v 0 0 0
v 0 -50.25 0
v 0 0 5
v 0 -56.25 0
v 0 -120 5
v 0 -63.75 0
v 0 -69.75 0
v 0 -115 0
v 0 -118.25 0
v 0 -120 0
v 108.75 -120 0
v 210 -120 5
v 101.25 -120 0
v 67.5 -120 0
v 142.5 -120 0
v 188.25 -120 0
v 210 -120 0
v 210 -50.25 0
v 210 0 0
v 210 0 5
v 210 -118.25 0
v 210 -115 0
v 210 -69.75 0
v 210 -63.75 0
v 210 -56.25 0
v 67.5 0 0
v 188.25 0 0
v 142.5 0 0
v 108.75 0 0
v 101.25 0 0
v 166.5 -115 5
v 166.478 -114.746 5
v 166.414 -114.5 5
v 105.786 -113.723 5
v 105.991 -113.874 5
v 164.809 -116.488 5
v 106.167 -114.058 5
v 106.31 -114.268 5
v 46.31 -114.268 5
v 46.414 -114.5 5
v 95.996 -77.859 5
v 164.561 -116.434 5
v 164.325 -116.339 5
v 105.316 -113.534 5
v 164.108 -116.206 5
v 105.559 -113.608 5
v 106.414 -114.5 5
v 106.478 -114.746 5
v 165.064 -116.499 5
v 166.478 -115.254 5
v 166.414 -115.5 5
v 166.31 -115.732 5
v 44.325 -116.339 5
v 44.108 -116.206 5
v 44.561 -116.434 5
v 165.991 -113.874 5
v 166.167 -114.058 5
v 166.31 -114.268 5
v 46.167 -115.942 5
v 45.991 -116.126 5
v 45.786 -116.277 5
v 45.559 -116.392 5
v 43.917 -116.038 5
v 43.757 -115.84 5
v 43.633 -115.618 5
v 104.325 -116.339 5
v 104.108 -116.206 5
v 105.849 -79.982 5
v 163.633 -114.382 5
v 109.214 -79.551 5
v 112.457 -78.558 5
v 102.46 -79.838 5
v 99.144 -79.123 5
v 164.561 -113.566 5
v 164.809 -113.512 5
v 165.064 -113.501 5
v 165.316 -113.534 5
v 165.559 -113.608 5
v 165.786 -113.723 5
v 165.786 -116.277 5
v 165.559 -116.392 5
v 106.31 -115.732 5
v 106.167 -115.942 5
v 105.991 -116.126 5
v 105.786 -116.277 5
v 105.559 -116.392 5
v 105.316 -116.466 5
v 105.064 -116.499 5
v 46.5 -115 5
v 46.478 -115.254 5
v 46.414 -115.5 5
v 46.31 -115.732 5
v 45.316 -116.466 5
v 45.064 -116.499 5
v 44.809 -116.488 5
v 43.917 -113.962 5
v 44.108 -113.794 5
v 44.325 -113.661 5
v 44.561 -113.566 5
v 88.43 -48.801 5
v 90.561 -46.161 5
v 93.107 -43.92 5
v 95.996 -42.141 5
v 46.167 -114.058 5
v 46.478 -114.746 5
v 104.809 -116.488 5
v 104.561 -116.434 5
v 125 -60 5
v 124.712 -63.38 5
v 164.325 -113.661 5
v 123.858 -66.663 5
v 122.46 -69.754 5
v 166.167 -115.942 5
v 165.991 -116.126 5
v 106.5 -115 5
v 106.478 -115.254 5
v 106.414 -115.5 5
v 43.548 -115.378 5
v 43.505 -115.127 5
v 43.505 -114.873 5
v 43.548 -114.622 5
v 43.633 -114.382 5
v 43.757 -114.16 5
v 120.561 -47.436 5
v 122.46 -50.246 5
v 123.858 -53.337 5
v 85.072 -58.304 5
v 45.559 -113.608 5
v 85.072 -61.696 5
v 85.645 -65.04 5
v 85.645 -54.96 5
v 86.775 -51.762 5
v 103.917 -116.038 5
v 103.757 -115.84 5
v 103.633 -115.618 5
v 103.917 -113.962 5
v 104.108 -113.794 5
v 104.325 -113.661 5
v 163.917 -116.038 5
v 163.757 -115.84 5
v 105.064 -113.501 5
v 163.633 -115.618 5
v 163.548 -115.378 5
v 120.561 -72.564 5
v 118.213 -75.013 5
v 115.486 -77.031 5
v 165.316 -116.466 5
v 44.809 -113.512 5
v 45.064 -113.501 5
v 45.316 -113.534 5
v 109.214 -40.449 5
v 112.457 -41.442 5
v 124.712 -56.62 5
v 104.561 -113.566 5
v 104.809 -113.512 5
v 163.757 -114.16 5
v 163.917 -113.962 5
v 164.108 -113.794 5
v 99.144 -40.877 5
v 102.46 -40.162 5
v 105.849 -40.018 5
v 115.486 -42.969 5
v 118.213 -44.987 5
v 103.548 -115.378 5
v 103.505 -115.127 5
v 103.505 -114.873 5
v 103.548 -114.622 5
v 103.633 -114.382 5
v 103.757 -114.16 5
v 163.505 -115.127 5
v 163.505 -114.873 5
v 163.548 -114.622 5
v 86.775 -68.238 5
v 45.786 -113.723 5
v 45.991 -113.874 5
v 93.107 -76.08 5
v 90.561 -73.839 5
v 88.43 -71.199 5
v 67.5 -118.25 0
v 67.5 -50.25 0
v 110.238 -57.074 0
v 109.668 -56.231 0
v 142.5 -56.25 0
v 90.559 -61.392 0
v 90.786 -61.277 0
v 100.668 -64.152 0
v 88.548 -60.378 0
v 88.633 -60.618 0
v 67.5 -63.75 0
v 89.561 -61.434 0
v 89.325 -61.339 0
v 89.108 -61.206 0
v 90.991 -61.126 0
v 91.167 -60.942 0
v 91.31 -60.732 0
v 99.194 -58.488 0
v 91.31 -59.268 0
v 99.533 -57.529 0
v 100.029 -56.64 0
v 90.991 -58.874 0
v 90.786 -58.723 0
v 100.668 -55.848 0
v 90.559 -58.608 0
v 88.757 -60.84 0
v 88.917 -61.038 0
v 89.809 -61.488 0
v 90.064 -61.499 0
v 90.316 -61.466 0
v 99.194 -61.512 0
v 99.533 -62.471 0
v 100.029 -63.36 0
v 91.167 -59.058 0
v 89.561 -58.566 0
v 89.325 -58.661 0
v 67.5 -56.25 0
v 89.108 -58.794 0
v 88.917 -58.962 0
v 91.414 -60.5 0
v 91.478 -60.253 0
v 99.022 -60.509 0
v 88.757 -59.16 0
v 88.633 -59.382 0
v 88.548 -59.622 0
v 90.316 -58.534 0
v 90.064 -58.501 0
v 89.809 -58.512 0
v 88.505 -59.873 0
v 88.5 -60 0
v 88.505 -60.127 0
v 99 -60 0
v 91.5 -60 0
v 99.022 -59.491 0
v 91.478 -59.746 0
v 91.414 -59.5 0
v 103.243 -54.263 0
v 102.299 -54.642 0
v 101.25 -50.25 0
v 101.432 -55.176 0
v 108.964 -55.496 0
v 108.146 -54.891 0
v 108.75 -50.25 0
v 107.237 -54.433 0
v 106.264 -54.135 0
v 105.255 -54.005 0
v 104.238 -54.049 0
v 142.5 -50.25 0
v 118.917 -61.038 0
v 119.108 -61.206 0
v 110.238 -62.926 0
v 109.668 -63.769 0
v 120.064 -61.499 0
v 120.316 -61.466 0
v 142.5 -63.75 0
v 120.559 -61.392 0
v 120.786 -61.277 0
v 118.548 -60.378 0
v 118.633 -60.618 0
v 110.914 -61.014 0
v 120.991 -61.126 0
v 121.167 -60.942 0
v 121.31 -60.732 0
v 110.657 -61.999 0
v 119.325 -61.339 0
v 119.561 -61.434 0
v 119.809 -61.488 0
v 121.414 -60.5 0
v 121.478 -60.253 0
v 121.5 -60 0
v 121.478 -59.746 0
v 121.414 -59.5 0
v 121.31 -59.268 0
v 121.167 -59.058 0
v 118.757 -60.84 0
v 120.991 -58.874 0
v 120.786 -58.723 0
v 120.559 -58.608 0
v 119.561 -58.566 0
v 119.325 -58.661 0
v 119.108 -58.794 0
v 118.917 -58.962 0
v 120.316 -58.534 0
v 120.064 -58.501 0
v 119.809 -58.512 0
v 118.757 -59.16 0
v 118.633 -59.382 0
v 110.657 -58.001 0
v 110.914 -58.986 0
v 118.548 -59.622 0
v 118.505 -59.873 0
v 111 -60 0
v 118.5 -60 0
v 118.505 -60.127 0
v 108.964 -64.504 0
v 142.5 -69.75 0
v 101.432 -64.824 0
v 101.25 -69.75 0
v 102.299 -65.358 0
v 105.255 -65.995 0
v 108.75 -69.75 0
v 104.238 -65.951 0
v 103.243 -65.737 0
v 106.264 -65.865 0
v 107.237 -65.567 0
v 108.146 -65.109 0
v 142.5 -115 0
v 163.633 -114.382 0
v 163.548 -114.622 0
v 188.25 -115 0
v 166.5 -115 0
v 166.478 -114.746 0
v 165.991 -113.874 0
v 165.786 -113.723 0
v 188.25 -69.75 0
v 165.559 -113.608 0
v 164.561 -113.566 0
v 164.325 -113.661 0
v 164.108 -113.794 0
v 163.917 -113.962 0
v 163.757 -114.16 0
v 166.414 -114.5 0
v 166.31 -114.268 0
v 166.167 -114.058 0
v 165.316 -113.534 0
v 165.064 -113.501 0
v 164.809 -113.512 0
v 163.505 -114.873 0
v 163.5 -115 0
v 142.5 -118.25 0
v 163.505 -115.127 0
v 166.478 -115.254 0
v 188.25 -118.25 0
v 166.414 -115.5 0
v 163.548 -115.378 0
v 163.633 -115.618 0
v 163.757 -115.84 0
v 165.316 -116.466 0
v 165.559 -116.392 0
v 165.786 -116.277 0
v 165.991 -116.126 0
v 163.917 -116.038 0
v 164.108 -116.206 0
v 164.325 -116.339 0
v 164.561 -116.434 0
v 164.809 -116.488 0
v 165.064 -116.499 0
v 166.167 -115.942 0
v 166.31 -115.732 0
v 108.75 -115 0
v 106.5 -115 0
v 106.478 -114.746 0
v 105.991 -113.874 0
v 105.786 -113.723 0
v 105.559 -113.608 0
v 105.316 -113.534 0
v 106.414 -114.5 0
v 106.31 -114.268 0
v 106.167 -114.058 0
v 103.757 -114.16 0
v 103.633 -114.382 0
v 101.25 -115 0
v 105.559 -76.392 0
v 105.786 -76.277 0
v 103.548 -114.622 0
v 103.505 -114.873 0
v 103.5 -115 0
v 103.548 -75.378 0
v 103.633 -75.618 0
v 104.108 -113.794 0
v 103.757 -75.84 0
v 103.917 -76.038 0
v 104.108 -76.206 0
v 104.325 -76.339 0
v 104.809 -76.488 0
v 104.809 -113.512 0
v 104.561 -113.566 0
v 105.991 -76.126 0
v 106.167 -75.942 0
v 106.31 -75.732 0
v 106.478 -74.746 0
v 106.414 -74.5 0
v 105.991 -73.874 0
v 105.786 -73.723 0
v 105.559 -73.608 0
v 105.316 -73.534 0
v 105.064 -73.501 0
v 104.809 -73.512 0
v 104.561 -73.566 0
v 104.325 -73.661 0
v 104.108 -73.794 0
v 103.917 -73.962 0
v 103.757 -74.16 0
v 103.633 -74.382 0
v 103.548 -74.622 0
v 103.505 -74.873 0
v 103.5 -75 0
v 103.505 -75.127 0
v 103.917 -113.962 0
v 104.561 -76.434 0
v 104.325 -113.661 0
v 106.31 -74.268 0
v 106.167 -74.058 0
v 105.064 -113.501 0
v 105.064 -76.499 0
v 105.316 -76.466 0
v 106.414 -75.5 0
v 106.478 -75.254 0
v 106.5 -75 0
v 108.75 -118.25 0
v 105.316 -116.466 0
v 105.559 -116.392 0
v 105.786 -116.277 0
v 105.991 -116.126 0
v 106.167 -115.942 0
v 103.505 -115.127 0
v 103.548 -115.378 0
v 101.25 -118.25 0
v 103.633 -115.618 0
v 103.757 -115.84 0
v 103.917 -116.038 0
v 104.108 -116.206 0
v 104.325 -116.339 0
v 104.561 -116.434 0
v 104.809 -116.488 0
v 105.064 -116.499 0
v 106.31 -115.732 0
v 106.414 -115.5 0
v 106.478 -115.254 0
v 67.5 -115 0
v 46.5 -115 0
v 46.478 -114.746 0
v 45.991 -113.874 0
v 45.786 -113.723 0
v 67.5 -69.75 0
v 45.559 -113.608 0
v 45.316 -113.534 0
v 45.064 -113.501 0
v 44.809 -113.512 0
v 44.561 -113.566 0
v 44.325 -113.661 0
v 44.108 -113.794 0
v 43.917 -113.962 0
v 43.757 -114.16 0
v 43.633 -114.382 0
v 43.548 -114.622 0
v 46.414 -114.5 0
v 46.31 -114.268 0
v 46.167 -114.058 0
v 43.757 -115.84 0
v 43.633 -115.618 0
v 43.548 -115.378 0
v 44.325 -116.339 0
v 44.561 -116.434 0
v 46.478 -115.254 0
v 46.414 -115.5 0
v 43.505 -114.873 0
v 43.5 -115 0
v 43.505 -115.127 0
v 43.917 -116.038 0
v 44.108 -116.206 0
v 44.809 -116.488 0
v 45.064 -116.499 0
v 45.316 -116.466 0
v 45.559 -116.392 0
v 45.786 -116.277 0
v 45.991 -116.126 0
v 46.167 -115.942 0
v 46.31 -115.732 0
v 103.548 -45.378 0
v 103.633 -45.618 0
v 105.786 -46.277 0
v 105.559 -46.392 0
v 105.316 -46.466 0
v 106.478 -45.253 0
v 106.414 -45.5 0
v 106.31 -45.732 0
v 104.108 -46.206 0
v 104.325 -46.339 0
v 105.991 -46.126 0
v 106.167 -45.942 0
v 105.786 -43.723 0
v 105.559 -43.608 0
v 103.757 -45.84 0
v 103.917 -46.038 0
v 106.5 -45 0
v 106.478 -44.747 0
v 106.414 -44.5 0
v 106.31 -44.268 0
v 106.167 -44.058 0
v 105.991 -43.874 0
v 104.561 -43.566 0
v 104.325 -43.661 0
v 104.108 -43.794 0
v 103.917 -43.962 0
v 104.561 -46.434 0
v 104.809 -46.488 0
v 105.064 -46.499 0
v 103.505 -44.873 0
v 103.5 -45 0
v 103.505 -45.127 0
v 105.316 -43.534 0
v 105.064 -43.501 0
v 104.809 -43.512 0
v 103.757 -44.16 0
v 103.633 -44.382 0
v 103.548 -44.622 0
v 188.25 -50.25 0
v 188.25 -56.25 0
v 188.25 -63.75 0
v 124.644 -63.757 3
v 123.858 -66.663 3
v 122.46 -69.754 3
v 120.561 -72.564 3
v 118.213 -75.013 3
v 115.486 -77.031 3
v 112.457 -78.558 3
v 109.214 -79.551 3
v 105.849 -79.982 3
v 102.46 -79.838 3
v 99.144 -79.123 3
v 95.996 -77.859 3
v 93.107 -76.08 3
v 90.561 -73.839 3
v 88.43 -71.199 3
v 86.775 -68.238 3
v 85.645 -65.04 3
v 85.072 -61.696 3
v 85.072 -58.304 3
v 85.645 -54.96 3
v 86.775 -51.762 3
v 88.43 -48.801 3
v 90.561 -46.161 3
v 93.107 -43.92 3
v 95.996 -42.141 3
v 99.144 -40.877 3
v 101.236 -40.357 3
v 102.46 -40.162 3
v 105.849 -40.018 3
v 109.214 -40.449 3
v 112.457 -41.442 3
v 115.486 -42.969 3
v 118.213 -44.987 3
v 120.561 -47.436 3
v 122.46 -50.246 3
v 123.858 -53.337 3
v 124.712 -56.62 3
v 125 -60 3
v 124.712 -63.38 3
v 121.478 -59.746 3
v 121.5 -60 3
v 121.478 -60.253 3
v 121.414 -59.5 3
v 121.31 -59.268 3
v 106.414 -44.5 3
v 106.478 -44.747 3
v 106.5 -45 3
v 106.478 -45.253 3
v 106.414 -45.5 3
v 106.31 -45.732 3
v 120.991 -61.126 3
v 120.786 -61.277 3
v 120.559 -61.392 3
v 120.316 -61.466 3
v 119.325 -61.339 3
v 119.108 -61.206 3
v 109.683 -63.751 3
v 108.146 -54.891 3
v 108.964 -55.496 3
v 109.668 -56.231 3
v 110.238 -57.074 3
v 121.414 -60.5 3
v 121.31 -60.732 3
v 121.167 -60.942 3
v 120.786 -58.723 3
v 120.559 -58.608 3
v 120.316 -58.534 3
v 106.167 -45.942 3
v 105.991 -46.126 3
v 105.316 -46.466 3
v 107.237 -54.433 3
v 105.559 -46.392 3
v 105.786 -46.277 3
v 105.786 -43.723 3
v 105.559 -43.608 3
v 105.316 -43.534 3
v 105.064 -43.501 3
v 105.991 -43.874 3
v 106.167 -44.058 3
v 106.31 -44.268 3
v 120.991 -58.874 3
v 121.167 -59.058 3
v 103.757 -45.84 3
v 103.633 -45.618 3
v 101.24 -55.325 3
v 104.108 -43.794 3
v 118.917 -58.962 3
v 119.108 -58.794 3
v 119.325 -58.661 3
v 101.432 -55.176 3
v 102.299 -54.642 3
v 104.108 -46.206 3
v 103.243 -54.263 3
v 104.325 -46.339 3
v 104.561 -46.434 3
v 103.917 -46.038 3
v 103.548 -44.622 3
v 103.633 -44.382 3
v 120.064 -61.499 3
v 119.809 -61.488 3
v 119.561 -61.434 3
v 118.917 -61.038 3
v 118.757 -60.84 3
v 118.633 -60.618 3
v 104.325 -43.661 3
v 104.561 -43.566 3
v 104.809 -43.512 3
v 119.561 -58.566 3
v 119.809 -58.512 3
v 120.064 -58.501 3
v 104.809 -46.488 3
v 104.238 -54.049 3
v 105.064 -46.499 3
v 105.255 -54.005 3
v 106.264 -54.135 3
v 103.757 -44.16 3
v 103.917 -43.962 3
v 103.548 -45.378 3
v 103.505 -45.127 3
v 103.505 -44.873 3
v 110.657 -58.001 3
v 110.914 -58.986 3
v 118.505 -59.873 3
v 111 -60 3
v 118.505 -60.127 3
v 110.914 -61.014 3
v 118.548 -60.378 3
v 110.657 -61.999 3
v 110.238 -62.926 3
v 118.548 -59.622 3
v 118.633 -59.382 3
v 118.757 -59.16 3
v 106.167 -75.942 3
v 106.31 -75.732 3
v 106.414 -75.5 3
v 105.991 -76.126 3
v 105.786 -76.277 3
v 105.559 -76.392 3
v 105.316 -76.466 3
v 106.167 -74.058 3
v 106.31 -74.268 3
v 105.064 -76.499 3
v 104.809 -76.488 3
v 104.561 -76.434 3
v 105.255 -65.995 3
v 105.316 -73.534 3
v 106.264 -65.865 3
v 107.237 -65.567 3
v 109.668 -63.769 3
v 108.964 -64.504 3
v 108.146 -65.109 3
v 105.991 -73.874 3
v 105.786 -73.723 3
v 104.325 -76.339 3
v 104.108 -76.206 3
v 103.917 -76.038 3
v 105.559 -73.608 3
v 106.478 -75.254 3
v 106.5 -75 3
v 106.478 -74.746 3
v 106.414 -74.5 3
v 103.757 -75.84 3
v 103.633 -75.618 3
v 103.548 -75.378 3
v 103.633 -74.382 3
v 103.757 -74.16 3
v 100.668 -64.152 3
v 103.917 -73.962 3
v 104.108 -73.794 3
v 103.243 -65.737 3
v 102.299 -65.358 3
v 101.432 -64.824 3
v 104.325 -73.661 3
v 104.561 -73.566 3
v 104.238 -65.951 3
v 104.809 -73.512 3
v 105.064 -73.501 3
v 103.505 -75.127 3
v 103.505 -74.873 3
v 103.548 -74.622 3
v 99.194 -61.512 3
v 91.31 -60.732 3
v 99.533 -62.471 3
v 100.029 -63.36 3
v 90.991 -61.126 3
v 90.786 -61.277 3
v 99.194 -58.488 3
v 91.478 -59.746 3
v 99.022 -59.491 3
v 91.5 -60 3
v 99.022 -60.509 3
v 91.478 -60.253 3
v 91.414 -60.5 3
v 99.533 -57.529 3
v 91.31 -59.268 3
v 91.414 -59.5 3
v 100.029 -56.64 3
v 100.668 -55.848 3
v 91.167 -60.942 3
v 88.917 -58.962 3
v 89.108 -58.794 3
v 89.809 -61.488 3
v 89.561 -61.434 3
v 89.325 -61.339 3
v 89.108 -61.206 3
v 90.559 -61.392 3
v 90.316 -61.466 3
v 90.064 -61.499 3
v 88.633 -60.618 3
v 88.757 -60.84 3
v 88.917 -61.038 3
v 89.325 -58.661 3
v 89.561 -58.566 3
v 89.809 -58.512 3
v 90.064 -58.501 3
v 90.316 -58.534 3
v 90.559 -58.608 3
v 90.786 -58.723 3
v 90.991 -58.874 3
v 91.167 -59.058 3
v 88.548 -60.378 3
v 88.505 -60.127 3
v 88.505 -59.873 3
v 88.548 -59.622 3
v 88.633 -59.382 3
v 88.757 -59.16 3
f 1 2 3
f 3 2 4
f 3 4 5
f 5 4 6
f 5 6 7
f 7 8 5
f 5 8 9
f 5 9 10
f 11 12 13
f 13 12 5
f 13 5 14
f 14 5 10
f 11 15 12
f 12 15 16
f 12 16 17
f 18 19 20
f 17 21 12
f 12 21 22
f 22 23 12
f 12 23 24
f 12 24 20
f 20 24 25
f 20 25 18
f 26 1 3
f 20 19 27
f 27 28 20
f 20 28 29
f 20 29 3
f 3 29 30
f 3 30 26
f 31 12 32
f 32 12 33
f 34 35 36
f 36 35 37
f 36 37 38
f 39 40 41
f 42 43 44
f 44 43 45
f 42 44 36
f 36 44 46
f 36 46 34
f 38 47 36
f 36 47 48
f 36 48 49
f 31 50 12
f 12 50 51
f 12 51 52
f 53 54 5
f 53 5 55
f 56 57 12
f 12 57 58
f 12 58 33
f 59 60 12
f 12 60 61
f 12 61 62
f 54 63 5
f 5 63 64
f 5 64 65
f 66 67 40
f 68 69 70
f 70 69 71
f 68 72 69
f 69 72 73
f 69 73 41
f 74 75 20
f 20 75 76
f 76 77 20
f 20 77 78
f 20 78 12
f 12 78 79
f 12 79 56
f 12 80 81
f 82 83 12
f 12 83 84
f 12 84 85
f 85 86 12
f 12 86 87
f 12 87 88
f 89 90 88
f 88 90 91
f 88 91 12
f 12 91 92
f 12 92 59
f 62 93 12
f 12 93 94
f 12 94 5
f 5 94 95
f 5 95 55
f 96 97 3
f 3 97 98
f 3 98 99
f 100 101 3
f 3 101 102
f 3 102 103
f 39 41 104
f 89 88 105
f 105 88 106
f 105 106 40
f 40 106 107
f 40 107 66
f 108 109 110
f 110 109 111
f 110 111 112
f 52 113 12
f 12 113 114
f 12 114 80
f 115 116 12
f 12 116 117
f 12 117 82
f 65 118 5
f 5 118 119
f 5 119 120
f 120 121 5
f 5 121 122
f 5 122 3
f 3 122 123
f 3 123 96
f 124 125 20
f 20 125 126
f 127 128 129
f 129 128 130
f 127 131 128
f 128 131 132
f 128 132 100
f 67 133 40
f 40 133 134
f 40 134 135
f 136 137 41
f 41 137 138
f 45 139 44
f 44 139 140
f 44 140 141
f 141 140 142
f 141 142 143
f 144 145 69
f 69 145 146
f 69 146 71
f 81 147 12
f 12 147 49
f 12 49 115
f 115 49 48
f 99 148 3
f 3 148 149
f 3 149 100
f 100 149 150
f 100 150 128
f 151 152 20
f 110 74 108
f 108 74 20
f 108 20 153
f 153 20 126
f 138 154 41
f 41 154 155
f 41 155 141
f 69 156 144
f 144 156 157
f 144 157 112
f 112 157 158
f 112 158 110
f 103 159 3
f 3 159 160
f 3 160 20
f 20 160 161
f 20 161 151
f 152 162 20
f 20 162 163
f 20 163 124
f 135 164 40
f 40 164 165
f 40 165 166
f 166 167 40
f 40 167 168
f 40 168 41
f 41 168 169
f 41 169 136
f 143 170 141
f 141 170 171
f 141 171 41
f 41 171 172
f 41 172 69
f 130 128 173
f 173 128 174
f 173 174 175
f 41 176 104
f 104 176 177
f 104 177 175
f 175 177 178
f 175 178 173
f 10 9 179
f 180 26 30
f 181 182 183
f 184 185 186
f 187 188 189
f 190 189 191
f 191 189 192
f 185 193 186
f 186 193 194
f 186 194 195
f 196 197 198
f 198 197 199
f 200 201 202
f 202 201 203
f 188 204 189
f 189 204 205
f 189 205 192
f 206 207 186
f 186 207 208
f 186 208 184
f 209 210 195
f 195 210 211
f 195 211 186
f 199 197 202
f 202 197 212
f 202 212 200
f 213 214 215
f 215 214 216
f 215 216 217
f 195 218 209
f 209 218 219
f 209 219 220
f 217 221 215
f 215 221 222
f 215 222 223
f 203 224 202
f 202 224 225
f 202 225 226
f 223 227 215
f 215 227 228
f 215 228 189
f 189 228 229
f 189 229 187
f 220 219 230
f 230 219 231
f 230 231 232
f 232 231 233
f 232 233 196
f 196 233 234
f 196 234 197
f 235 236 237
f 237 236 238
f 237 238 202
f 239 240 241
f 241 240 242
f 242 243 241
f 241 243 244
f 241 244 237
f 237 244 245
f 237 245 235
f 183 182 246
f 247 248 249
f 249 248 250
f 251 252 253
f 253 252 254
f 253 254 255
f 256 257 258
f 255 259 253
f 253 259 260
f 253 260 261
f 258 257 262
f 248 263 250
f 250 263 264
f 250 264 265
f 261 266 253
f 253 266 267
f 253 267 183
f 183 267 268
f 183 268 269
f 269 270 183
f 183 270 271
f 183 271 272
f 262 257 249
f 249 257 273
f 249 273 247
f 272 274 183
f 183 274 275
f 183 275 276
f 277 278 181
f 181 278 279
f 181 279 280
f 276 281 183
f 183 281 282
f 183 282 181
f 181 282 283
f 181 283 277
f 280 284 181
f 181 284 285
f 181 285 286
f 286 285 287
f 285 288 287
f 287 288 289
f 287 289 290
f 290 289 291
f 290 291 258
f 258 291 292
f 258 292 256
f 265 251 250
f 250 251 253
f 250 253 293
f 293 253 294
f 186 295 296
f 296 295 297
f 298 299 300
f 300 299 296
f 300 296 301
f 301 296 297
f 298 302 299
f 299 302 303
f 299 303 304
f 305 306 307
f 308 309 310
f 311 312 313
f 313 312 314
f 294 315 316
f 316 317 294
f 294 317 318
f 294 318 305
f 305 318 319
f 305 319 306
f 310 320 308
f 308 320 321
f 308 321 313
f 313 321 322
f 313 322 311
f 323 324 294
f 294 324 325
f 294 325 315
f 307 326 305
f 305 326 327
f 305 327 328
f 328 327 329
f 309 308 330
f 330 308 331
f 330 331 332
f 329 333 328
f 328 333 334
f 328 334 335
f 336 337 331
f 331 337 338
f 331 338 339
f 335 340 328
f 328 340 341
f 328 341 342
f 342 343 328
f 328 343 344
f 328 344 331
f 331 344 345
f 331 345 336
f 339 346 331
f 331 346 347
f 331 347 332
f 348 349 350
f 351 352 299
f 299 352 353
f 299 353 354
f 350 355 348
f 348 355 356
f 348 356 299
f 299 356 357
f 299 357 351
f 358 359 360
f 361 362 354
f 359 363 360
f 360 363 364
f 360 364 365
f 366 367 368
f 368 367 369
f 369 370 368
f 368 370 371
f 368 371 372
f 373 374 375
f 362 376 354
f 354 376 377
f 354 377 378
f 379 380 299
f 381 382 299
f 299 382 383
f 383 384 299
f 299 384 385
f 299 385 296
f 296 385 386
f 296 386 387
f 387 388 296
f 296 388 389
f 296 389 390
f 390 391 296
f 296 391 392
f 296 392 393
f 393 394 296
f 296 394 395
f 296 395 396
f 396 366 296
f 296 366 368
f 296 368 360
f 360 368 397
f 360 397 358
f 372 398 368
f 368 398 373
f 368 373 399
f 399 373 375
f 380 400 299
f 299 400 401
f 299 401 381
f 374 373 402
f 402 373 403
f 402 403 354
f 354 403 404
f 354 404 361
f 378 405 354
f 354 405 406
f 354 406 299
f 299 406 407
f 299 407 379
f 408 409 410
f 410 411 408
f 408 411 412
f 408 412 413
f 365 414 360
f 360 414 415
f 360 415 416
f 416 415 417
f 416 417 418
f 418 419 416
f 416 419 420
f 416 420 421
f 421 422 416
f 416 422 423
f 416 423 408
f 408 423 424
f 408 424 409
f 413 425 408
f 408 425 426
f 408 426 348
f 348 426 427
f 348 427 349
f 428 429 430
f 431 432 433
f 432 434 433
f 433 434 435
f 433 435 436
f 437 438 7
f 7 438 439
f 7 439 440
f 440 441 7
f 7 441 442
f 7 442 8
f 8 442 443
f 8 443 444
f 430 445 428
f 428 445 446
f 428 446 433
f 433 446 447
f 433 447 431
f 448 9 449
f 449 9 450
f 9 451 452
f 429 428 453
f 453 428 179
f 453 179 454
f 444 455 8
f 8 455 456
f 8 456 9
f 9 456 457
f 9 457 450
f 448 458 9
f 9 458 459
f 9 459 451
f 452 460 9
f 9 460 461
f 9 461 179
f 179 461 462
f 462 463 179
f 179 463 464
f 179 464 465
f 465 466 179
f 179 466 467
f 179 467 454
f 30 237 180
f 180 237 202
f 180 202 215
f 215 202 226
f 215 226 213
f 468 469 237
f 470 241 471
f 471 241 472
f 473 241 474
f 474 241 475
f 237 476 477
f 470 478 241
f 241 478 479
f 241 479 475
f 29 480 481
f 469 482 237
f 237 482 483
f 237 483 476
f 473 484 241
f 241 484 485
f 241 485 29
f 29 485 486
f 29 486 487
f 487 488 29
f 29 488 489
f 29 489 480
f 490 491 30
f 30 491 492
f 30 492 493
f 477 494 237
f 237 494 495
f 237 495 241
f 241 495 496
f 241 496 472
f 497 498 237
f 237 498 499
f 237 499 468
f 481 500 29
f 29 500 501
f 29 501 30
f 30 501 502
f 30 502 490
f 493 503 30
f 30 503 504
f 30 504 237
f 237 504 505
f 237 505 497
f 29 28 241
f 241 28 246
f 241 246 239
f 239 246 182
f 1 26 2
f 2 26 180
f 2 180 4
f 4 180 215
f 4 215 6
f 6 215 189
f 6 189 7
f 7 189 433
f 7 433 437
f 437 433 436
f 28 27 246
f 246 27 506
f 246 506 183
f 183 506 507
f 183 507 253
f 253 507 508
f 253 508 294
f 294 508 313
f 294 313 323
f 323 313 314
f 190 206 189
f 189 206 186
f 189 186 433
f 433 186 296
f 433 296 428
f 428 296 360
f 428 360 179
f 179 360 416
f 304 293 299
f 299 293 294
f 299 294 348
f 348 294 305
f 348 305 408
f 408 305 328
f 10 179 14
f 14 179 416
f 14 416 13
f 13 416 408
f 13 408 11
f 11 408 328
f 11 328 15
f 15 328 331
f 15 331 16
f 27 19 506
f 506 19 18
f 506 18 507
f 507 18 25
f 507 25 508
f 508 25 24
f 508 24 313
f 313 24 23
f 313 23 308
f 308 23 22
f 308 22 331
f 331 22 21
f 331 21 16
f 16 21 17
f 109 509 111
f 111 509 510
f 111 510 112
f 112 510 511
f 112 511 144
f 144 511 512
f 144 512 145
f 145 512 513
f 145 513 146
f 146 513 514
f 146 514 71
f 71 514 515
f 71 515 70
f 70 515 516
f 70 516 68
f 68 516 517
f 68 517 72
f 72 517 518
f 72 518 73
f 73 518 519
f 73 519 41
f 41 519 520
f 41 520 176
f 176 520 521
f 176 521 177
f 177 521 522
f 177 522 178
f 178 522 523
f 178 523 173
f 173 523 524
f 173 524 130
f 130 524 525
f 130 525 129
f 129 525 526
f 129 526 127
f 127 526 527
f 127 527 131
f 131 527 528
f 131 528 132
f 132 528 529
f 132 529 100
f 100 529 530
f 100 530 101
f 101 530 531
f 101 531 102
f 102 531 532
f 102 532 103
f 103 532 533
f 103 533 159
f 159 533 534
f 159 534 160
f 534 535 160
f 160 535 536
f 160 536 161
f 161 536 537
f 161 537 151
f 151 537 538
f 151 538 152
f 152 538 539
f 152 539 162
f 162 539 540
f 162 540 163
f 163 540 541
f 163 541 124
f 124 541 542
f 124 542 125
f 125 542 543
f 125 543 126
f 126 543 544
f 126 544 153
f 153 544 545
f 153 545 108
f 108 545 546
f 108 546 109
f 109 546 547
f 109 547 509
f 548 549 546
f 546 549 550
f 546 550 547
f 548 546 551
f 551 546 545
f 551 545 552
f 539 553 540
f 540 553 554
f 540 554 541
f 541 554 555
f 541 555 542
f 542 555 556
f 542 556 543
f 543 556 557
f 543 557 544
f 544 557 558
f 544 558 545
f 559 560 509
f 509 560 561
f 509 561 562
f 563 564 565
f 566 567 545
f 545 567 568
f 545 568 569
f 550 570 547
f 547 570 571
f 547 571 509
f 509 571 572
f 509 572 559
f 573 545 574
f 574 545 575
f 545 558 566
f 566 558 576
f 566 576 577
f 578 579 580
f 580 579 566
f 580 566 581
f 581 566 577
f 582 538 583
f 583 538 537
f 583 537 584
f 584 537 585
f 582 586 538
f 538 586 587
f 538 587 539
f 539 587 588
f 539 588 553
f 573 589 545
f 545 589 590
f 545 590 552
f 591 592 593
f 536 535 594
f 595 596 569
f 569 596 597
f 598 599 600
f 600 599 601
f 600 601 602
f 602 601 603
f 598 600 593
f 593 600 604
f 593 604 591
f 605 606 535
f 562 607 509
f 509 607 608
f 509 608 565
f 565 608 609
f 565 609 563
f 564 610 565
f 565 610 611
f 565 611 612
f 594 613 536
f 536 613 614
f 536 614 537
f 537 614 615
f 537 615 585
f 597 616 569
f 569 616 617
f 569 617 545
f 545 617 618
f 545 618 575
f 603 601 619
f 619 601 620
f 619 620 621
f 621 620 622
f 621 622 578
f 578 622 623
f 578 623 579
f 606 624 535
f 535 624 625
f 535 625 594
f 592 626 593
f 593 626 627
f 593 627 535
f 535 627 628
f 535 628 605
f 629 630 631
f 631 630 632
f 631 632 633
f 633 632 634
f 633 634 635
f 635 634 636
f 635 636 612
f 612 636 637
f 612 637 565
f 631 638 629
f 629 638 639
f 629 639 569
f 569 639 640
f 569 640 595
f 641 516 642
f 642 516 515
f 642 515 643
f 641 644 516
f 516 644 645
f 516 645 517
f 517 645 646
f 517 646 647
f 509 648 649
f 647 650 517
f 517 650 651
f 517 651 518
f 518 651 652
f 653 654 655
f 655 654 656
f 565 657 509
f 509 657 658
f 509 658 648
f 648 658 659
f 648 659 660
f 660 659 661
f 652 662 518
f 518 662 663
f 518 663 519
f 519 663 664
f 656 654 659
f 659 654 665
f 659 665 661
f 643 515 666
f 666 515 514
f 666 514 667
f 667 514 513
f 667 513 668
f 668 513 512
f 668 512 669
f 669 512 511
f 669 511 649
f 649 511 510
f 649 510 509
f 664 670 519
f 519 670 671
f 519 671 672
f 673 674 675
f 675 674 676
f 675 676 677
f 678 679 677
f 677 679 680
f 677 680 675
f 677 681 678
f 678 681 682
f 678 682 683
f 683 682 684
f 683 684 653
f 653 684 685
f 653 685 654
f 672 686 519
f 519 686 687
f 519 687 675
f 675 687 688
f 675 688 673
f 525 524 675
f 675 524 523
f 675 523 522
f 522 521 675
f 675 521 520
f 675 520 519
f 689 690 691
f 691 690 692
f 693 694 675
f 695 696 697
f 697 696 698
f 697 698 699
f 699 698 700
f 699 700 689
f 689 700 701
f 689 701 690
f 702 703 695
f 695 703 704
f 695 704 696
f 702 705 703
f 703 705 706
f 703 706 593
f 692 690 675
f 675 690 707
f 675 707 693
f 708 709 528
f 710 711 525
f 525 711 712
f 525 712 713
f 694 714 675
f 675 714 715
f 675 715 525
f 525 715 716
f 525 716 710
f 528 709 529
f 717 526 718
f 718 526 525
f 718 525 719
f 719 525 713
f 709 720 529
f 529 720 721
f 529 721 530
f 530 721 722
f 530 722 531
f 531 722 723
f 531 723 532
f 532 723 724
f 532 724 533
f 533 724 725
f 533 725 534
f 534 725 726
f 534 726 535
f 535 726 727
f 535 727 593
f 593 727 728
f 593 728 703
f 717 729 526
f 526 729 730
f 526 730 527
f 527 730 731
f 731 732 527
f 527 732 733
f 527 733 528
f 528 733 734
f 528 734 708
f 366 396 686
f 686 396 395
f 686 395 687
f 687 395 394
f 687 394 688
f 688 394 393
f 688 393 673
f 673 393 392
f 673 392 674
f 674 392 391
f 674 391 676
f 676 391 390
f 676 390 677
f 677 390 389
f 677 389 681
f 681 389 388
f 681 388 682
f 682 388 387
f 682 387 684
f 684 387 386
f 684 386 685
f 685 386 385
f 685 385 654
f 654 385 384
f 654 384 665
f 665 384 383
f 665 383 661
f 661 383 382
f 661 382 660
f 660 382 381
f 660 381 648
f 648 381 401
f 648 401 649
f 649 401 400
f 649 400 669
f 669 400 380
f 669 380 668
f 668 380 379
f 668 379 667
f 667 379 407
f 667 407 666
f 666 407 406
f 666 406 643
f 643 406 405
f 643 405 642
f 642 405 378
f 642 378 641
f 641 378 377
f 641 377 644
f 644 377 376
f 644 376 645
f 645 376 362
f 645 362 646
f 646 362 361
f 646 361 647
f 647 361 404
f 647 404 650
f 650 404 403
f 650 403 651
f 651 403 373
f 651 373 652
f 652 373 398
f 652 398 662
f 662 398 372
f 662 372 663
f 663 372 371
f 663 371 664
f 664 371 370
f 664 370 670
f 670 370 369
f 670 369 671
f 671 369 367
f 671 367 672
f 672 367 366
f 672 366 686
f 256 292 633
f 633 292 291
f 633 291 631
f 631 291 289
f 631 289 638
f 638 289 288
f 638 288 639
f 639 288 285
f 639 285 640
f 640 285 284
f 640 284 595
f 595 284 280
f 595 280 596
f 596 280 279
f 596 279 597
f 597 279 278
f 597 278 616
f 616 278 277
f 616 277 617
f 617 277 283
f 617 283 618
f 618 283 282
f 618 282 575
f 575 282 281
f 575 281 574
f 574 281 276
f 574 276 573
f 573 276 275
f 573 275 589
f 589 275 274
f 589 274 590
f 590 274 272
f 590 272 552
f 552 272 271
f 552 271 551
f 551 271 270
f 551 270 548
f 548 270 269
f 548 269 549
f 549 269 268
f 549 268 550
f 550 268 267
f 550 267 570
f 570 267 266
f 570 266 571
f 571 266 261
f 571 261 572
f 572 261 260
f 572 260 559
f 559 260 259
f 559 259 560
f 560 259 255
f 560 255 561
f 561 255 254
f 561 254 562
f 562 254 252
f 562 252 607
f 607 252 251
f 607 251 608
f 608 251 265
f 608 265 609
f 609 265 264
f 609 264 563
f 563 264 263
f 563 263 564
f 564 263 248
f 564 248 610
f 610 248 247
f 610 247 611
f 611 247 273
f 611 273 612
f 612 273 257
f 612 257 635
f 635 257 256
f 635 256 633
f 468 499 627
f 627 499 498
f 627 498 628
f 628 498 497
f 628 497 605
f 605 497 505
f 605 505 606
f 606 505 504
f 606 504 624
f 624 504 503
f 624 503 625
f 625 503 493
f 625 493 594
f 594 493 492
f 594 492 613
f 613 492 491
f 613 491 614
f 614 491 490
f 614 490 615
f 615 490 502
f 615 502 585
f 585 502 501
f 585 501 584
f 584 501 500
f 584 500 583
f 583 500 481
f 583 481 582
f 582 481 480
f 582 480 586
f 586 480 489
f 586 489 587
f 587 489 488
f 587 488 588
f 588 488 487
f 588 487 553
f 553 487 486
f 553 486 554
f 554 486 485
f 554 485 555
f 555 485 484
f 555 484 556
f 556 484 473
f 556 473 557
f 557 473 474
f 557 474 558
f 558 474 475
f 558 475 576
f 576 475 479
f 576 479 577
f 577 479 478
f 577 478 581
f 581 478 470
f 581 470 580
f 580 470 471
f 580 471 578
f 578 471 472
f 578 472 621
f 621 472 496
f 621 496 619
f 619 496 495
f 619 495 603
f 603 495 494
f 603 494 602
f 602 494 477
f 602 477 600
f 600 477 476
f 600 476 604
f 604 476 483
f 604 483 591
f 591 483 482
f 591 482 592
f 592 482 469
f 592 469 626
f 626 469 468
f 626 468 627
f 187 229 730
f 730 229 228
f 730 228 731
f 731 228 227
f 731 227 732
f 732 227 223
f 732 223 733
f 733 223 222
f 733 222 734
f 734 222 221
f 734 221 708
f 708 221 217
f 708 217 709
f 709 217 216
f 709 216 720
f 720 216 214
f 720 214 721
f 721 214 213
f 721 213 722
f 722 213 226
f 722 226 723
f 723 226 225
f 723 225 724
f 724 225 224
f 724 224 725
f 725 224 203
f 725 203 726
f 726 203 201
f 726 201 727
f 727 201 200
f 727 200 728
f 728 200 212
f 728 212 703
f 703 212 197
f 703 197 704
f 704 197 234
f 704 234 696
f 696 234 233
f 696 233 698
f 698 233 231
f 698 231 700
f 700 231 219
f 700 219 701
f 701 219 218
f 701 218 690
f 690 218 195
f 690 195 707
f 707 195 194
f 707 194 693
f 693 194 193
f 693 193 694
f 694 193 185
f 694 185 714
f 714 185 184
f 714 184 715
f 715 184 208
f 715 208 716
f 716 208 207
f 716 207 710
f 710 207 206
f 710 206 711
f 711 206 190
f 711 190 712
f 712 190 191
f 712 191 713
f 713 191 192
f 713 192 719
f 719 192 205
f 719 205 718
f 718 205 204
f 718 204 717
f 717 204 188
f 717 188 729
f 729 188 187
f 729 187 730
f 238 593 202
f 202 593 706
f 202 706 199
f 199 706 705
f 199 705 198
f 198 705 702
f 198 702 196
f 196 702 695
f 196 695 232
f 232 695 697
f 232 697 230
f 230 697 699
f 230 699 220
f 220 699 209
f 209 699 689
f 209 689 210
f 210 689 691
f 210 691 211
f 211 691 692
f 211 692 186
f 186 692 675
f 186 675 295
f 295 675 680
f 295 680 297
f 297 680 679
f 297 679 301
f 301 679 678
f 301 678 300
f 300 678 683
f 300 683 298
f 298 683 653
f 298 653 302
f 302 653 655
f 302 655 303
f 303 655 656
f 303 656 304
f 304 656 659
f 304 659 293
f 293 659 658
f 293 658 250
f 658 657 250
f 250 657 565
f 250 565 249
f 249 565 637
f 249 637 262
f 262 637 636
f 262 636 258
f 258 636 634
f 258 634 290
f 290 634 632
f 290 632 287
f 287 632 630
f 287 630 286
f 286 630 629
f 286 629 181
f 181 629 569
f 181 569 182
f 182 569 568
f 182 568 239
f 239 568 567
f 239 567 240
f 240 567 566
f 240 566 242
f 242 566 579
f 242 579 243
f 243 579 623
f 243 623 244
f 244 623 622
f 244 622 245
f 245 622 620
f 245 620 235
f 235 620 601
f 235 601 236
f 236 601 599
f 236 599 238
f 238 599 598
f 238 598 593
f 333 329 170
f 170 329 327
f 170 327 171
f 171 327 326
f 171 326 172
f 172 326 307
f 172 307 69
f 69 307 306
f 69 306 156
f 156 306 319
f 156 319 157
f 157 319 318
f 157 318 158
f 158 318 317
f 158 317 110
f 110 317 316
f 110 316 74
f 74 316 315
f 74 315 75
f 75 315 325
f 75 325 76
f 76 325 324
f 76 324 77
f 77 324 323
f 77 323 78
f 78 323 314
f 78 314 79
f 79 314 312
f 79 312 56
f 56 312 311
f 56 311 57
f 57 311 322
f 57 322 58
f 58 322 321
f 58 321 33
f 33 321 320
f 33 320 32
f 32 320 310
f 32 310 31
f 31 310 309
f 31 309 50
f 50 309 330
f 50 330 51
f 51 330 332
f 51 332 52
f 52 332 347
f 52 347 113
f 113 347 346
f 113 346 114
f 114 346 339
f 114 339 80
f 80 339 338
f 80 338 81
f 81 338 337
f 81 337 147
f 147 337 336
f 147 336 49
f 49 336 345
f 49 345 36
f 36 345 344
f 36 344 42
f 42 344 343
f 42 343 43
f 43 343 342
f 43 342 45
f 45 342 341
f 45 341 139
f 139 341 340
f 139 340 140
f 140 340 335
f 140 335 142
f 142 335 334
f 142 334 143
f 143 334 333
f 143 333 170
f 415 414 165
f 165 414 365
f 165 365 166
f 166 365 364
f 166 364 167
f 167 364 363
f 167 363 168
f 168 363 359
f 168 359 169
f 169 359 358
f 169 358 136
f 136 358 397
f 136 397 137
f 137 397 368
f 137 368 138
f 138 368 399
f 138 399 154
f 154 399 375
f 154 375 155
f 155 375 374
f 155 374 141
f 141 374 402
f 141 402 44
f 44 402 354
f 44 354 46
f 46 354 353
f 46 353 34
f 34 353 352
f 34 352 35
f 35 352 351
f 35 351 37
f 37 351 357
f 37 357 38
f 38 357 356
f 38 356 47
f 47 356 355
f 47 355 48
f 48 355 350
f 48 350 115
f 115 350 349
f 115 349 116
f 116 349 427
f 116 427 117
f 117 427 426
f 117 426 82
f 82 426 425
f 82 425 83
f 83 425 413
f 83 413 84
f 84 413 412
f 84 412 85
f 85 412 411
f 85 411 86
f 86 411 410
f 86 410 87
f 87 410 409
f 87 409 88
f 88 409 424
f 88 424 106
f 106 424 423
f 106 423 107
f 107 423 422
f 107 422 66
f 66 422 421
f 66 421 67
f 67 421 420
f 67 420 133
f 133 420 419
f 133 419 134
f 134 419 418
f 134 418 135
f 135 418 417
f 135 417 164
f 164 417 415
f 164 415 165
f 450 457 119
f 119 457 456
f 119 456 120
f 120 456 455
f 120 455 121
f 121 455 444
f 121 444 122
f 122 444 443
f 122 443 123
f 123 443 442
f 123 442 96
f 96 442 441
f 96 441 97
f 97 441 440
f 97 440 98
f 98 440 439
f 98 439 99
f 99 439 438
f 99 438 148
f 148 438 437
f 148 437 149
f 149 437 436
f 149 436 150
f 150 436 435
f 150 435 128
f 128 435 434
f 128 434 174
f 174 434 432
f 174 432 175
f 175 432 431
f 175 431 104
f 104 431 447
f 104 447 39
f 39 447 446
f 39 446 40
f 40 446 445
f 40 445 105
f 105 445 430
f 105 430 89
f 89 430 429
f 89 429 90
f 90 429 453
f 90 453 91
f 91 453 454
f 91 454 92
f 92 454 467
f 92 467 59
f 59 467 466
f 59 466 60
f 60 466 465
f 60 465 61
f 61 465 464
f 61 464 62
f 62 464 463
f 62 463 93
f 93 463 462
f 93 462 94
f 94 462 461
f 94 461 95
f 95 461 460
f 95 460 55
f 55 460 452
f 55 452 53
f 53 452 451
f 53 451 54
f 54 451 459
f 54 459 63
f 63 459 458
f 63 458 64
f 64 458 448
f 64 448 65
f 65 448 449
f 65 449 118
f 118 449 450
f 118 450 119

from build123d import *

# Parameters (mm, degrees)
SKETCH1_W           = 210
SKETCH1_H           = 120
BOSS_EXTRUDE1_DEPTH = 5
CUT_EXTRUDE1_DEPTH  = 2
SKETCH3_R           = 1.5
CUT_EXTRUDE3_DEPTH  = 5
SKETCH4_R           = 6
CUT_EXTRUDE4_DEPTH  = 5
SKETCH5_R           = 1.5
CUT_EXTRUDE5_DEPTH  = 10


with BuildPart() as part:
    # Sketch1 → Boss-Extrude1 (new body)
    with BuildSketch(Plane.XY):
        with Locations((105, -60)):
            Rectangle(SKETCH1_W, SKETCH1_H)
    extrude(amount=BOSS_EXTRUDE1_DEPTH)

    # Sketch2 → Cut-Extrude1 (cut)
    with BuildSketch(Plane.XY.offset(5)):
        with BuildLine():
            ThreePointArc((125, -60), (105, -40), (85, -60))
            Line((85, -60), (125, -60))
        make_face()
        with BuildLine():
            Line((125, -60), (85, -60))
            ThreePointArc((85, -60), (105, -80), (125, -60))
        make_face()
    extrude(amount=-CUT_EXTRUDE1_DEPTH, mode=Mode.SUBTRACT)

    # Sketch3 → Cut-Extrude3 (cut)
    with BuildSketch(Plane.XY.offset(3)):
        with Locations((105, -45)):
            Circle(SKETCH3_R)
        with Locations((120, -60)):
            Circle(SKETCH3_R)
        with Locations((105, -75)):
            Circle(SKETCH3_R)
        with Locations((90, -60)):
            Circle(SKETCH3_R)
    extrude(amount=-CUT_EXTRUDE3_DEPTH, mode=Mode.SUBTRACT)

    # Sketch4 → Cut-Extrude4 (cut)
    with BuildSketch(Plane.XY.offset(3)):
        with Locations((105, -60)):
            Circle(SKETCH4_R)
    extrude(amount=-CUT_EXTRUDE4_DEPTH, mode=Mode.SUBTRACT)

    # Sketch5 → Cut-Extrude5 (cut)
    with BuildSketch(Plane.XY.offset(5)):
        with Locations((45, -115)):
            Circle(SKETCH5_R)
        with Locations((105, -115)):
            Circle(SKETCH5_R)
        with Locations((165, -115)):
            Circle(SKETCH5_R)
    extrude(amount=-CUT_EXTRUDE5_DEPTH, mode=Mode.SUBTRACT)


solid = part.part
